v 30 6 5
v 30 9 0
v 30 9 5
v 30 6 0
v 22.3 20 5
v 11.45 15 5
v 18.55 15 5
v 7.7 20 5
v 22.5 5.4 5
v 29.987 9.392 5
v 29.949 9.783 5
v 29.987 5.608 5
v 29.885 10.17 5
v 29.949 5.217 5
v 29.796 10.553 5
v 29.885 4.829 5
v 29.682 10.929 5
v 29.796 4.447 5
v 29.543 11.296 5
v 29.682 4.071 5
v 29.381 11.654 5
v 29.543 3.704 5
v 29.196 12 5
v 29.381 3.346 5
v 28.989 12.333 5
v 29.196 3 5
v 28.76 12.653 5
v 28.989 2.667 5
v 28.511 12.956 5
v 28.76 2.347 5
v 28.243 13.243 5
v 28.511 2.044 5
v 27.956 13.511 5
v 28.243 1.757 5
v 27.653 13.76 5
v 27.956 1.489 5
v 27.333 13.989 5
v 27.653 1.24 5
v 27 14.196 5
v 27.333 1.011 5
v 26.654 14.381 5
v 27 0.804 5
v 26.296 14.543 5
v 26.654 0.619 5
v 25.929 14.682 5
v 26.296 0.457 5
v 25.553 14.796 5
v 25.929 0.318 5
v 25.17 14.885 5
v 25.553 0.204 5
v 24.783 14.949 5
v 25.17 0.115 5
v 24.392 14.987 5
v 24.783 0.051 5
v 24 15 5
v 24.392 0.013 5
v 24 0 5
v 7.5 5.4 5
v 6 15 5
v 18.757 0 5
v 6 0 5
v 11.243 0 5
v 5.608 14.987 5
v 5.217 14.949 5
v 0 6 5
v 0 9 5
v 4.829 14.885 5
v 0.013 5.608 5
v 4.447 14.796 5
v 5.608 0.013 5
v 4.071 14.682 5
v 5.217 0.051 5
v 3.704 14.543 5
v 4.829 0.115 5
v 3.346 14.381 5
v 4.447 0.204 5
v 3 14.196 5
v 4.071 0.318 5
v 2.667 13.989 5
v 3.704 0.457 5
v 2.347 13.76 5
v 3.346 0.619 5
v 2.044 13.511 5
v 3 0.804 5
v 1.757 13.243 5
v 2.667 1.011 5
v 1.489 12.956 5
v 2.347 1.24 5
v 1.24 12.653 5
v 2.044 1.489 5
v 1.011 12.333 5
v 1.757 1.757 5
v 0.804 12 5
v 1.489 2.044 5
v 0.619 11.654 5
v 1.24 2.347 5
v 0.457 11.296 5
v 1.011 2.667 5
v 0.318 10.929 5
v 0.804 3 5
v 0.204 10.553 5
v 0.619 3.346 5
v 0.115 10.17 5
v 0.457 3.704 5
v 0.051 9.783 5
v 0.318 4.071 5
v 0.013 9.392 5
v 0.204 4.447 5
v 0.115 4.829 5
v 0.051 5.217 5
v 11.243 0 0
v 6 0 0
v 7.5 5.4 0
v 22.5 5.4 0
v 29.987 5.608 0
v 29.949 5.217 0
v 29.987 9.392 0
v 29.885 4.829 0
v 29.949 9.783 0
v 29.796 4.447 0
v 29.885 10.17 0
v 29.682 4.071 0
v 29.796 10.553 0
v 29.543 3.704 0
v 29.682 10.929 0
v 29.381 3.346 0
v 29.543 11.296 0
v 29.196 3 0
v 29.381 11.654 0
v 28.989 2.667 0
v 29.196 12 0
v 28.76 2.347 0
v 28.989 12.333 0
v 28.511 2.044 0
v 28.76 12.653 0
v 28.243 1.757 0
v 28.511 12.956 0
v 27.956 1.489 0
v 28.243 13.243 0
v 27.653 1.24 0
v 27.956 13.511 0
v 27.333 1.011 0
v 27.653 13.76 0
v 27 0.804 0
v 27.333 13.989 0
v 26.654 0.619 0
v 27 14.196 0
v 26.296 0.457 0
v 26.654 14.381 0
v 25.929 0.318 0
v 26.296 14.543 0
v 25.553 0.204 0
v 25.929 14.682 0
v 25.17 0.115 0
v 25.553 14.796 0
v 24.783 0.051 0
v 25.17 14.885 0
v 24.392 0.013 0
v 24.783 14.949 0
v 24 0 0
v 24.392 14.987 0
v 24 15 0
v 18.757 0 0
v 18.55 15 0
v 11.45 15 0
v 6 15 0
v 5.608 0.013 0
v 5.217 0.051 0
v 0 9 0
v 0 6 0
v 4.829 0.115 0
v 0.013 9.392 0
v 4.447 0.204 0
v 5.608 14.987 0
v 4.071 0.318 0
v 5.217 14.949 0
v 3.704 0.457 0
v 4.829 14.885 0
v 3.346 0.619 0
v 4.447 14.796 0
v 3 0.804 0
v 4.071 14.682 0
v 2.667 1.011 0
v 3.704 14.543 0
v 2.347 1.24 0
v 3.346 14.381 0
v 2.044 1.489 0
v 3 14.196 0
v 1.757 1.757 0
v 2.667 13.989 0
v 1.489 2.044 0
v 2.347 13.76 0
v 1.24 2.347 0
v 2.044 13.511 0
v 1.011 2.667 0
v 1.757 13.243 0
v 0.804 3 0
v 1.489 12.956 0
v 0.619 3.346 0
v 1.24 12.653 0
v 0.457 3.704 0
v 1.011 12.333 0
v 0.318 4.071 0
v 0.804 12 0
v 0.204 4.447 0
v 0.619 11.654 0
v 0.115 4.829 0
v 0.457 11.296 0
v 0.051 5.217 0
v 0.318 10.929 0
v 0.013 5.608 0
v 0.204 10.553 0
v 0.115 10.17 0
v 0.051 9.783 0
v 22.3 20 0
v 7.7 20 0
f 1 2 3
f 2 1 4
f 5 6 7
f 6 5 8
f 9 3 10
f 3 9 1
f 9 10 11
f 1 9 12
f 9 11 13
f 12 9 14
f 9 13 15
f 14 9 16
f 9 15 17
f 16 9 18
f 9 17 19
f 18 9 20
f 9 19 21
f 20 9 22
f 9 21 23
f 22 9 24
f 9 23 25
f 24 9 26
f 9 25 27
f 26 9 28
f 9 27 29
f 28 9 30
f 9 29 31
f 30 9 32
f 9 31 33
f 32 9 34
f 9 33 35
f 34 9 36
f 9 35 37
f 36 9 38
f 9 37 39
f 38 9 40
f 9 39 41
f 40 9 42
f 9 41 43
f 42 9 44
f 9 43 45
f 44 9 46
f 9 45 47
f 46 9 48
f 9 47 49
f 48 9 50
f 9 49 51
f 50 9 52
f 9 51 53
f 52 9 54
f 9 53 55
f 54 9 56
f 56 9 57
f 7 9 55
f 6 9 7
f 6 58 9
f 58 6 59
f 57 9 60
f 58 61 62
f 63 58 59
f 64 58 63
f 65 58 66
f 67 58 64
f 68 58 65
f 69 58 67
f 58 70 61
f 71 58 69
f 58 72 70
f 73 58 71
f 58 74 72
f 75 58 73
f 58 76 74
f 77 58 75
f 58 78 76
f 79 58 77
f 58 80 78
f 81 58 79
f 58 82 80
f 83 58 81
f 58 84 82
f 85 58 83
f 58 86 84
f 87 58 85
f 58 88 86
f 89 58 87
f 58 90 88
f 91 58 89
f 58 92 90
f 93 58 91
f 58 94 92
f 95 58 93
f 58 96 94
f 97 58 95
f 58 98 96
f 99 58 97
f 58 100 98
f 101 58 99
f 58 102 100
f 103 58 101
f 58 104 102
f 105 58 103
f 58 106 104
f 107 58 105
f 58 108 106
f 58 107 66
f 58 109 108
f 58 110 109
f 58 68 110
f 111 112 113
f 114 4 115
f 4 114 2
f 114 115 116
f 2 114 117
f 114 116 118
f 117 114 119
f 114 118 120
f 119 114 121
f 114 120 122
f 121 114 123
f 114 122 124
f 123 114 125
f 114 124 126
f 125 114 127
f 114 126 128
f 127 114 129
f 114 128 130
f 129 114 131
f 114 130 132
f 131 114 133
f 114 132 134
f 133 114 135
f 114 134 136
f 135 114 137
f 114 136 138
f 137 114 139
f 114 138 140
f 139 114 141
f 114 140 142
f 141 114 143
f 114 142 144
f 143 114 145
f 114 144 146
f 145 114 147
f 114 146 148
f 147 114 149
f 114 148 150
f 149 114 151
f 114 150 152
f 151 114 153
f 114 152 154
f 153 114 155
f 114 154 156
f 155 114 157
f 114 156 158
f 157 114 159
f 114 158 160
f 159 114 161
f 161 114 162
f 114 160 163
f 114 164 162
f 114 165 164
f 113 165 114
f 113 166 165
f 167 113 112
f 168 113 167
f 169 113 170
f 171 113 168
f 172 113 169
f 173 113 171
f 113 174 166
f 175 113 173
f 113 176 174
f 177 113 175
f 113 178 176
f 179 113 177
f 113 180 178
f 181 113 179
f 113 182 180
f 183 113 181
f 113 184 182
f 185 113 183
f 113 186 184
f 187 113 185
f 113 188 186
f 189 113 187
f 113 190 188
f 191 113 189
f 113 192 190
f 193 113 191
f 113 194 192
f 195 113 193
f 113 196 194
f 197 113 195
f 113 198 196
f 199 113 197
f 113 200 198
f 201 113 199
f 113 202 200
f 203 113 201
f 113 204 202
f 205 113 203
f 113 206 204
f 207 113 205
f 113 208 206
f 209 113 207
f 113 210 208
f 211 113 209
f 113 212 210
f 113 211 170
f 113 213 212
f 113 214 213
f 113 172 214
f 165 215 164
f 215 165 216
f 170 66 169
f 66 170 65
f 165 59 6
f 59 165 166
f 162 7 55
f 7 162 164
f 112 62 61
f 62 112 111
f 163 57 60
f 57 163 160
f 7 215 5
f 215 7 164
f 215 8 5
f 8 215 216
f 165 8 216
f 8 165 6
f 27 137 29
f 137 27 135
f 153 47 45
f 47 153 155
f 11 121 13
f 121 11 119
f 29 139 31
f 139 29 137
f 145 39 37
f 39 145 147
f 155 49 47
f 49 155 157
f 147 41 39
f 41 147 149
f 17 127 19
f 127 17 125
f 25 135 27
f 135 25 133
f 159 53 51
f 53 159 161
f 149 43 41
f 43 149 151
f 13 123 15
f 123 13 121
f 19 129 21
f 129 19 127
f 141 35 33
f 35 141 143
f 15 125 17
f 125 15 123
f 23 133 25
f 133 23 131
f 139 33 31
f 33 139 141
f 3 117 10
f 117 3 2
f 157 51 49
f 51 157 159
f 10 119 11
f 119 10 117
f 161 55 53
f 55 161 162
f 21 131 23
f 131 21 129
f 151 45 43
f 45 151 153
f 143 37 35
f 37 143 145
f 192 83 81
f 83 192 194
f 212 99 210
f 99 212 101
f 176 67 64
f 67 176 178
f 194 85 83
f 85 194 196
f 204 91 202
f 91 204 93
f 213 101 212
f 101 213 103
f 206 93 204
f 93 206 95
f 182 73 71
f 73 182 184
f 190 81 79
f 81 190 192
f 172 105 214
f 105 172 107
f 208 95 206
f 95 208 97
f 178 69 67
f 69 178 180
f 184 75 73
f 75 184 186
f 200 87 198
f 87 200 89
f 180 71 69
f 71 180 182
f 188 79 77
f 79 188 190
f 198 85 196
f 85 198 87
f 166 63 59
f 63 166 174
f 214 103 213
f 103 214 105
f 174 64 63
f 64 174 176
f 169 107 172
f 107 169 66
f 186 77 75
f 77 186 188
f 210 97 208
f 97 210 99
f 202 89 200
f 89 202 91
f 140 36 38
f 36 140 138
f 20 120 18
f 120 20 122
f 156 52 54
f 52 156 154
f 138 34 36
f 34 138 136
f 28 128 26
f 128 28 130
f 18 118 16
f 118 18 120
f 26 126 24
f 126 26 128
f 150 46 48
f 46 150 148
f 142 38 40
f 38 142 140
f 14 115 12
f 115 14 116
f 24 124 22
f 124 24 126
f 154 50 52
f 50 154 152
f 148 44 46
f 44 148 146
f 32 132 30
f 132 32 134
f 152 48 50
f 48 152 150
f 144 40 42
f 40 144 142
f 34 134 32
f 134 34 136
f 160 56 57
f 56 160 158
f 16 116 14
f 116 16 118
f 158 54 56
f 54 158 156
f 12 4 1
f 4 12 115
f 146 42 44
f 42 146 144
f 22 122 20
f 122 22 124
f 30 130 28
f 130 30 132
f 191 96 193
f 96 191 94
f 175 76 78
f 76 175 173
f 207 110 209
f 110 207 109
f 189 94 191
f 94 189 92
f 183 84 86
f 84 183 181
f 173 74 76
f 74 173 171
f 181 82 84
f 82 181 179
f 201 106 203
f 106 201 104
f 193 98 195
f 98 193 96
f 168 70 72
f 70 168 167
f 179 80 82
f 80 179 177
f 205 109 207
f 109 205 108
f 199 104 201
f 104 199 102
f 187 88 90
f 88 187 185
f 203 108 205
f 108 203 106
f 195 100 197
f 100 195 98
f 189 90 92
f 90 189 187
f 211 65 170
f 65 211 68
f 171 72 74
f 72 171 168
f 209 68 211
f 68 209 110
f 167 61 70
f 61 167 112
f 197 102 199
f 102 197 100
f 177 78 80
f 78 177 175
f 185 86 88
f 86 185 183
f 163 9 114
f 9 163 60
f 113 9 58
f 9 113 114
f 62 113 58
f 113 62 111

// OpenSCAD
// By MegaSaturnv 2021-03-02

/////////////////////////////
// Customizable Parameters //
/////////////////////////////
/* [Basic] */
//Thickness of the standoff
STANDOFF_HEIGHT = 5;

//Width or length of the standoff. Will be the fan size, which is usually one of the following: 40,50,60,70,80,92,120,140,200,220. Also determines the size of the dovetail joints
FAN_SIZE = 120;

//Round the corners of the standoff
ROUNDED_CORNERS = true;

//Dovetail joins are modified by this much to allow for tolerance
INTERLOCKING_TOLERANCE = 0.3;

/* [Advanced] */
ROUNDED_CORNERS_RADIUS = 6;

INTERLOCKING_A = FAN_SIZE/16;
INTERLOCKING_B = FAN_SIZE/8;
INTERLOCKING_H = FAN_SIZE/24;
INTERLOCKING_A_T = INTERLOCKING_A - (2*INTERLOCKING_TOLERANCE);
INTERLOCKING_B_T = INTERLOCKING_B - (2*INTERLOCKING_TOLERANCE);
INTERLOCKING_H_T = INTERLOCKING_H + INTERLOCKING_TOLERANCE;

//Use $fn = 24 if it's a preview. $fn = 96 for the render. Increase 96 to produce a smoother curve.
$fn = $preview ? 24 : 96;

/////////////
// Modules //
/////////////
module roundedCorner(sideLength=1, thickness=1, cylinderCenter=false) {
	if (cylinderCenter) { //Cylinder cutout is in the centre
		difference() {
			cube([sideLength, sideLength, thickness]);
			cylinder(r=sideLength, h=thickness);
		}
	} else {
		difference() { //Corner of the object is in the centre
			cube([sideLength, sideLength, thickness]);
			translate([sideLength, sideLength, 0]) cylinder(r=sideLength, h=thickness);
		}
	}
}

module isoscelesTrapezium(a, b, h, thickness, center=true) {
	if (center)	{
		translate([-b/2, 0, 0])
		linear_extrude (height=thickness)
		polygon(points=[[0,0],[b,0],[a/2+b/2,h],[b/2-a/2,h]]);
	} else {
		linear_extrude (height=thickness)
		polygon(points=[[0,0],[b,0],[a/2+b/2,h],[b/2-a/2,h]]);
	}
}

////////////////
// Main Model //
////////////////
difference() {POSITION_FACTOR = 12;
	union() {
		cube([FAN_SIZE/4, FAN_SIZE/8, STANDOFF_HEIGHT]);

		translate([FAN_SIZE/8, FAN_SIZE/8 + INTERLOCKING_H, 0]) rotate([0, 0, 180]) isoscelesTrapezium(INTERLOCKING_A_T, INTERLOCKING_B_T, INTERLOCKING_H, STANDOFF_HEIGHT);
	}

	if (ROUNDED_CORNERS) {
		translate([FAN_SIZE/4, FAN_SIZE/8, -0.01]) rotate([0, 0, 180]) roundedCorner(ROUNDED_CORNERS_RADIUS, STANDOFF_HEIGHT+0.02);
		translate([0, FAN_SIZE/8, -0.01]) rotate([0, 0, 270]) roundedCorner(ROUNDED_CORNERS_RADIUS, STANDOFF_HEIGHT+0.02);
		translate([FAN_SIZE/4, 0, -0.01]) rotate([0, 0, 90]) roundedCorner(ROUNDED_CORNERS_RADIUS, STANDOFF_HEIGHT+0.02);
		translate([0, 0, -0.01]) rotate([0, 0, 0]) roundedCorner(ROUNDED_CORNERS_RADIUS, STANDOFF_HEIGHT+0.02);
	}

	translate([FAN_SIZE/8, INTERLOCKING_H_T, -0.01]) rotate([0, 0, 180]) isoscelesTrapezium(INTERLOCKING_A, INTERLOCKING_B, INTERLOCKING_H_T+0.01, STANDOFF_HEIGHT+0.02);
}
